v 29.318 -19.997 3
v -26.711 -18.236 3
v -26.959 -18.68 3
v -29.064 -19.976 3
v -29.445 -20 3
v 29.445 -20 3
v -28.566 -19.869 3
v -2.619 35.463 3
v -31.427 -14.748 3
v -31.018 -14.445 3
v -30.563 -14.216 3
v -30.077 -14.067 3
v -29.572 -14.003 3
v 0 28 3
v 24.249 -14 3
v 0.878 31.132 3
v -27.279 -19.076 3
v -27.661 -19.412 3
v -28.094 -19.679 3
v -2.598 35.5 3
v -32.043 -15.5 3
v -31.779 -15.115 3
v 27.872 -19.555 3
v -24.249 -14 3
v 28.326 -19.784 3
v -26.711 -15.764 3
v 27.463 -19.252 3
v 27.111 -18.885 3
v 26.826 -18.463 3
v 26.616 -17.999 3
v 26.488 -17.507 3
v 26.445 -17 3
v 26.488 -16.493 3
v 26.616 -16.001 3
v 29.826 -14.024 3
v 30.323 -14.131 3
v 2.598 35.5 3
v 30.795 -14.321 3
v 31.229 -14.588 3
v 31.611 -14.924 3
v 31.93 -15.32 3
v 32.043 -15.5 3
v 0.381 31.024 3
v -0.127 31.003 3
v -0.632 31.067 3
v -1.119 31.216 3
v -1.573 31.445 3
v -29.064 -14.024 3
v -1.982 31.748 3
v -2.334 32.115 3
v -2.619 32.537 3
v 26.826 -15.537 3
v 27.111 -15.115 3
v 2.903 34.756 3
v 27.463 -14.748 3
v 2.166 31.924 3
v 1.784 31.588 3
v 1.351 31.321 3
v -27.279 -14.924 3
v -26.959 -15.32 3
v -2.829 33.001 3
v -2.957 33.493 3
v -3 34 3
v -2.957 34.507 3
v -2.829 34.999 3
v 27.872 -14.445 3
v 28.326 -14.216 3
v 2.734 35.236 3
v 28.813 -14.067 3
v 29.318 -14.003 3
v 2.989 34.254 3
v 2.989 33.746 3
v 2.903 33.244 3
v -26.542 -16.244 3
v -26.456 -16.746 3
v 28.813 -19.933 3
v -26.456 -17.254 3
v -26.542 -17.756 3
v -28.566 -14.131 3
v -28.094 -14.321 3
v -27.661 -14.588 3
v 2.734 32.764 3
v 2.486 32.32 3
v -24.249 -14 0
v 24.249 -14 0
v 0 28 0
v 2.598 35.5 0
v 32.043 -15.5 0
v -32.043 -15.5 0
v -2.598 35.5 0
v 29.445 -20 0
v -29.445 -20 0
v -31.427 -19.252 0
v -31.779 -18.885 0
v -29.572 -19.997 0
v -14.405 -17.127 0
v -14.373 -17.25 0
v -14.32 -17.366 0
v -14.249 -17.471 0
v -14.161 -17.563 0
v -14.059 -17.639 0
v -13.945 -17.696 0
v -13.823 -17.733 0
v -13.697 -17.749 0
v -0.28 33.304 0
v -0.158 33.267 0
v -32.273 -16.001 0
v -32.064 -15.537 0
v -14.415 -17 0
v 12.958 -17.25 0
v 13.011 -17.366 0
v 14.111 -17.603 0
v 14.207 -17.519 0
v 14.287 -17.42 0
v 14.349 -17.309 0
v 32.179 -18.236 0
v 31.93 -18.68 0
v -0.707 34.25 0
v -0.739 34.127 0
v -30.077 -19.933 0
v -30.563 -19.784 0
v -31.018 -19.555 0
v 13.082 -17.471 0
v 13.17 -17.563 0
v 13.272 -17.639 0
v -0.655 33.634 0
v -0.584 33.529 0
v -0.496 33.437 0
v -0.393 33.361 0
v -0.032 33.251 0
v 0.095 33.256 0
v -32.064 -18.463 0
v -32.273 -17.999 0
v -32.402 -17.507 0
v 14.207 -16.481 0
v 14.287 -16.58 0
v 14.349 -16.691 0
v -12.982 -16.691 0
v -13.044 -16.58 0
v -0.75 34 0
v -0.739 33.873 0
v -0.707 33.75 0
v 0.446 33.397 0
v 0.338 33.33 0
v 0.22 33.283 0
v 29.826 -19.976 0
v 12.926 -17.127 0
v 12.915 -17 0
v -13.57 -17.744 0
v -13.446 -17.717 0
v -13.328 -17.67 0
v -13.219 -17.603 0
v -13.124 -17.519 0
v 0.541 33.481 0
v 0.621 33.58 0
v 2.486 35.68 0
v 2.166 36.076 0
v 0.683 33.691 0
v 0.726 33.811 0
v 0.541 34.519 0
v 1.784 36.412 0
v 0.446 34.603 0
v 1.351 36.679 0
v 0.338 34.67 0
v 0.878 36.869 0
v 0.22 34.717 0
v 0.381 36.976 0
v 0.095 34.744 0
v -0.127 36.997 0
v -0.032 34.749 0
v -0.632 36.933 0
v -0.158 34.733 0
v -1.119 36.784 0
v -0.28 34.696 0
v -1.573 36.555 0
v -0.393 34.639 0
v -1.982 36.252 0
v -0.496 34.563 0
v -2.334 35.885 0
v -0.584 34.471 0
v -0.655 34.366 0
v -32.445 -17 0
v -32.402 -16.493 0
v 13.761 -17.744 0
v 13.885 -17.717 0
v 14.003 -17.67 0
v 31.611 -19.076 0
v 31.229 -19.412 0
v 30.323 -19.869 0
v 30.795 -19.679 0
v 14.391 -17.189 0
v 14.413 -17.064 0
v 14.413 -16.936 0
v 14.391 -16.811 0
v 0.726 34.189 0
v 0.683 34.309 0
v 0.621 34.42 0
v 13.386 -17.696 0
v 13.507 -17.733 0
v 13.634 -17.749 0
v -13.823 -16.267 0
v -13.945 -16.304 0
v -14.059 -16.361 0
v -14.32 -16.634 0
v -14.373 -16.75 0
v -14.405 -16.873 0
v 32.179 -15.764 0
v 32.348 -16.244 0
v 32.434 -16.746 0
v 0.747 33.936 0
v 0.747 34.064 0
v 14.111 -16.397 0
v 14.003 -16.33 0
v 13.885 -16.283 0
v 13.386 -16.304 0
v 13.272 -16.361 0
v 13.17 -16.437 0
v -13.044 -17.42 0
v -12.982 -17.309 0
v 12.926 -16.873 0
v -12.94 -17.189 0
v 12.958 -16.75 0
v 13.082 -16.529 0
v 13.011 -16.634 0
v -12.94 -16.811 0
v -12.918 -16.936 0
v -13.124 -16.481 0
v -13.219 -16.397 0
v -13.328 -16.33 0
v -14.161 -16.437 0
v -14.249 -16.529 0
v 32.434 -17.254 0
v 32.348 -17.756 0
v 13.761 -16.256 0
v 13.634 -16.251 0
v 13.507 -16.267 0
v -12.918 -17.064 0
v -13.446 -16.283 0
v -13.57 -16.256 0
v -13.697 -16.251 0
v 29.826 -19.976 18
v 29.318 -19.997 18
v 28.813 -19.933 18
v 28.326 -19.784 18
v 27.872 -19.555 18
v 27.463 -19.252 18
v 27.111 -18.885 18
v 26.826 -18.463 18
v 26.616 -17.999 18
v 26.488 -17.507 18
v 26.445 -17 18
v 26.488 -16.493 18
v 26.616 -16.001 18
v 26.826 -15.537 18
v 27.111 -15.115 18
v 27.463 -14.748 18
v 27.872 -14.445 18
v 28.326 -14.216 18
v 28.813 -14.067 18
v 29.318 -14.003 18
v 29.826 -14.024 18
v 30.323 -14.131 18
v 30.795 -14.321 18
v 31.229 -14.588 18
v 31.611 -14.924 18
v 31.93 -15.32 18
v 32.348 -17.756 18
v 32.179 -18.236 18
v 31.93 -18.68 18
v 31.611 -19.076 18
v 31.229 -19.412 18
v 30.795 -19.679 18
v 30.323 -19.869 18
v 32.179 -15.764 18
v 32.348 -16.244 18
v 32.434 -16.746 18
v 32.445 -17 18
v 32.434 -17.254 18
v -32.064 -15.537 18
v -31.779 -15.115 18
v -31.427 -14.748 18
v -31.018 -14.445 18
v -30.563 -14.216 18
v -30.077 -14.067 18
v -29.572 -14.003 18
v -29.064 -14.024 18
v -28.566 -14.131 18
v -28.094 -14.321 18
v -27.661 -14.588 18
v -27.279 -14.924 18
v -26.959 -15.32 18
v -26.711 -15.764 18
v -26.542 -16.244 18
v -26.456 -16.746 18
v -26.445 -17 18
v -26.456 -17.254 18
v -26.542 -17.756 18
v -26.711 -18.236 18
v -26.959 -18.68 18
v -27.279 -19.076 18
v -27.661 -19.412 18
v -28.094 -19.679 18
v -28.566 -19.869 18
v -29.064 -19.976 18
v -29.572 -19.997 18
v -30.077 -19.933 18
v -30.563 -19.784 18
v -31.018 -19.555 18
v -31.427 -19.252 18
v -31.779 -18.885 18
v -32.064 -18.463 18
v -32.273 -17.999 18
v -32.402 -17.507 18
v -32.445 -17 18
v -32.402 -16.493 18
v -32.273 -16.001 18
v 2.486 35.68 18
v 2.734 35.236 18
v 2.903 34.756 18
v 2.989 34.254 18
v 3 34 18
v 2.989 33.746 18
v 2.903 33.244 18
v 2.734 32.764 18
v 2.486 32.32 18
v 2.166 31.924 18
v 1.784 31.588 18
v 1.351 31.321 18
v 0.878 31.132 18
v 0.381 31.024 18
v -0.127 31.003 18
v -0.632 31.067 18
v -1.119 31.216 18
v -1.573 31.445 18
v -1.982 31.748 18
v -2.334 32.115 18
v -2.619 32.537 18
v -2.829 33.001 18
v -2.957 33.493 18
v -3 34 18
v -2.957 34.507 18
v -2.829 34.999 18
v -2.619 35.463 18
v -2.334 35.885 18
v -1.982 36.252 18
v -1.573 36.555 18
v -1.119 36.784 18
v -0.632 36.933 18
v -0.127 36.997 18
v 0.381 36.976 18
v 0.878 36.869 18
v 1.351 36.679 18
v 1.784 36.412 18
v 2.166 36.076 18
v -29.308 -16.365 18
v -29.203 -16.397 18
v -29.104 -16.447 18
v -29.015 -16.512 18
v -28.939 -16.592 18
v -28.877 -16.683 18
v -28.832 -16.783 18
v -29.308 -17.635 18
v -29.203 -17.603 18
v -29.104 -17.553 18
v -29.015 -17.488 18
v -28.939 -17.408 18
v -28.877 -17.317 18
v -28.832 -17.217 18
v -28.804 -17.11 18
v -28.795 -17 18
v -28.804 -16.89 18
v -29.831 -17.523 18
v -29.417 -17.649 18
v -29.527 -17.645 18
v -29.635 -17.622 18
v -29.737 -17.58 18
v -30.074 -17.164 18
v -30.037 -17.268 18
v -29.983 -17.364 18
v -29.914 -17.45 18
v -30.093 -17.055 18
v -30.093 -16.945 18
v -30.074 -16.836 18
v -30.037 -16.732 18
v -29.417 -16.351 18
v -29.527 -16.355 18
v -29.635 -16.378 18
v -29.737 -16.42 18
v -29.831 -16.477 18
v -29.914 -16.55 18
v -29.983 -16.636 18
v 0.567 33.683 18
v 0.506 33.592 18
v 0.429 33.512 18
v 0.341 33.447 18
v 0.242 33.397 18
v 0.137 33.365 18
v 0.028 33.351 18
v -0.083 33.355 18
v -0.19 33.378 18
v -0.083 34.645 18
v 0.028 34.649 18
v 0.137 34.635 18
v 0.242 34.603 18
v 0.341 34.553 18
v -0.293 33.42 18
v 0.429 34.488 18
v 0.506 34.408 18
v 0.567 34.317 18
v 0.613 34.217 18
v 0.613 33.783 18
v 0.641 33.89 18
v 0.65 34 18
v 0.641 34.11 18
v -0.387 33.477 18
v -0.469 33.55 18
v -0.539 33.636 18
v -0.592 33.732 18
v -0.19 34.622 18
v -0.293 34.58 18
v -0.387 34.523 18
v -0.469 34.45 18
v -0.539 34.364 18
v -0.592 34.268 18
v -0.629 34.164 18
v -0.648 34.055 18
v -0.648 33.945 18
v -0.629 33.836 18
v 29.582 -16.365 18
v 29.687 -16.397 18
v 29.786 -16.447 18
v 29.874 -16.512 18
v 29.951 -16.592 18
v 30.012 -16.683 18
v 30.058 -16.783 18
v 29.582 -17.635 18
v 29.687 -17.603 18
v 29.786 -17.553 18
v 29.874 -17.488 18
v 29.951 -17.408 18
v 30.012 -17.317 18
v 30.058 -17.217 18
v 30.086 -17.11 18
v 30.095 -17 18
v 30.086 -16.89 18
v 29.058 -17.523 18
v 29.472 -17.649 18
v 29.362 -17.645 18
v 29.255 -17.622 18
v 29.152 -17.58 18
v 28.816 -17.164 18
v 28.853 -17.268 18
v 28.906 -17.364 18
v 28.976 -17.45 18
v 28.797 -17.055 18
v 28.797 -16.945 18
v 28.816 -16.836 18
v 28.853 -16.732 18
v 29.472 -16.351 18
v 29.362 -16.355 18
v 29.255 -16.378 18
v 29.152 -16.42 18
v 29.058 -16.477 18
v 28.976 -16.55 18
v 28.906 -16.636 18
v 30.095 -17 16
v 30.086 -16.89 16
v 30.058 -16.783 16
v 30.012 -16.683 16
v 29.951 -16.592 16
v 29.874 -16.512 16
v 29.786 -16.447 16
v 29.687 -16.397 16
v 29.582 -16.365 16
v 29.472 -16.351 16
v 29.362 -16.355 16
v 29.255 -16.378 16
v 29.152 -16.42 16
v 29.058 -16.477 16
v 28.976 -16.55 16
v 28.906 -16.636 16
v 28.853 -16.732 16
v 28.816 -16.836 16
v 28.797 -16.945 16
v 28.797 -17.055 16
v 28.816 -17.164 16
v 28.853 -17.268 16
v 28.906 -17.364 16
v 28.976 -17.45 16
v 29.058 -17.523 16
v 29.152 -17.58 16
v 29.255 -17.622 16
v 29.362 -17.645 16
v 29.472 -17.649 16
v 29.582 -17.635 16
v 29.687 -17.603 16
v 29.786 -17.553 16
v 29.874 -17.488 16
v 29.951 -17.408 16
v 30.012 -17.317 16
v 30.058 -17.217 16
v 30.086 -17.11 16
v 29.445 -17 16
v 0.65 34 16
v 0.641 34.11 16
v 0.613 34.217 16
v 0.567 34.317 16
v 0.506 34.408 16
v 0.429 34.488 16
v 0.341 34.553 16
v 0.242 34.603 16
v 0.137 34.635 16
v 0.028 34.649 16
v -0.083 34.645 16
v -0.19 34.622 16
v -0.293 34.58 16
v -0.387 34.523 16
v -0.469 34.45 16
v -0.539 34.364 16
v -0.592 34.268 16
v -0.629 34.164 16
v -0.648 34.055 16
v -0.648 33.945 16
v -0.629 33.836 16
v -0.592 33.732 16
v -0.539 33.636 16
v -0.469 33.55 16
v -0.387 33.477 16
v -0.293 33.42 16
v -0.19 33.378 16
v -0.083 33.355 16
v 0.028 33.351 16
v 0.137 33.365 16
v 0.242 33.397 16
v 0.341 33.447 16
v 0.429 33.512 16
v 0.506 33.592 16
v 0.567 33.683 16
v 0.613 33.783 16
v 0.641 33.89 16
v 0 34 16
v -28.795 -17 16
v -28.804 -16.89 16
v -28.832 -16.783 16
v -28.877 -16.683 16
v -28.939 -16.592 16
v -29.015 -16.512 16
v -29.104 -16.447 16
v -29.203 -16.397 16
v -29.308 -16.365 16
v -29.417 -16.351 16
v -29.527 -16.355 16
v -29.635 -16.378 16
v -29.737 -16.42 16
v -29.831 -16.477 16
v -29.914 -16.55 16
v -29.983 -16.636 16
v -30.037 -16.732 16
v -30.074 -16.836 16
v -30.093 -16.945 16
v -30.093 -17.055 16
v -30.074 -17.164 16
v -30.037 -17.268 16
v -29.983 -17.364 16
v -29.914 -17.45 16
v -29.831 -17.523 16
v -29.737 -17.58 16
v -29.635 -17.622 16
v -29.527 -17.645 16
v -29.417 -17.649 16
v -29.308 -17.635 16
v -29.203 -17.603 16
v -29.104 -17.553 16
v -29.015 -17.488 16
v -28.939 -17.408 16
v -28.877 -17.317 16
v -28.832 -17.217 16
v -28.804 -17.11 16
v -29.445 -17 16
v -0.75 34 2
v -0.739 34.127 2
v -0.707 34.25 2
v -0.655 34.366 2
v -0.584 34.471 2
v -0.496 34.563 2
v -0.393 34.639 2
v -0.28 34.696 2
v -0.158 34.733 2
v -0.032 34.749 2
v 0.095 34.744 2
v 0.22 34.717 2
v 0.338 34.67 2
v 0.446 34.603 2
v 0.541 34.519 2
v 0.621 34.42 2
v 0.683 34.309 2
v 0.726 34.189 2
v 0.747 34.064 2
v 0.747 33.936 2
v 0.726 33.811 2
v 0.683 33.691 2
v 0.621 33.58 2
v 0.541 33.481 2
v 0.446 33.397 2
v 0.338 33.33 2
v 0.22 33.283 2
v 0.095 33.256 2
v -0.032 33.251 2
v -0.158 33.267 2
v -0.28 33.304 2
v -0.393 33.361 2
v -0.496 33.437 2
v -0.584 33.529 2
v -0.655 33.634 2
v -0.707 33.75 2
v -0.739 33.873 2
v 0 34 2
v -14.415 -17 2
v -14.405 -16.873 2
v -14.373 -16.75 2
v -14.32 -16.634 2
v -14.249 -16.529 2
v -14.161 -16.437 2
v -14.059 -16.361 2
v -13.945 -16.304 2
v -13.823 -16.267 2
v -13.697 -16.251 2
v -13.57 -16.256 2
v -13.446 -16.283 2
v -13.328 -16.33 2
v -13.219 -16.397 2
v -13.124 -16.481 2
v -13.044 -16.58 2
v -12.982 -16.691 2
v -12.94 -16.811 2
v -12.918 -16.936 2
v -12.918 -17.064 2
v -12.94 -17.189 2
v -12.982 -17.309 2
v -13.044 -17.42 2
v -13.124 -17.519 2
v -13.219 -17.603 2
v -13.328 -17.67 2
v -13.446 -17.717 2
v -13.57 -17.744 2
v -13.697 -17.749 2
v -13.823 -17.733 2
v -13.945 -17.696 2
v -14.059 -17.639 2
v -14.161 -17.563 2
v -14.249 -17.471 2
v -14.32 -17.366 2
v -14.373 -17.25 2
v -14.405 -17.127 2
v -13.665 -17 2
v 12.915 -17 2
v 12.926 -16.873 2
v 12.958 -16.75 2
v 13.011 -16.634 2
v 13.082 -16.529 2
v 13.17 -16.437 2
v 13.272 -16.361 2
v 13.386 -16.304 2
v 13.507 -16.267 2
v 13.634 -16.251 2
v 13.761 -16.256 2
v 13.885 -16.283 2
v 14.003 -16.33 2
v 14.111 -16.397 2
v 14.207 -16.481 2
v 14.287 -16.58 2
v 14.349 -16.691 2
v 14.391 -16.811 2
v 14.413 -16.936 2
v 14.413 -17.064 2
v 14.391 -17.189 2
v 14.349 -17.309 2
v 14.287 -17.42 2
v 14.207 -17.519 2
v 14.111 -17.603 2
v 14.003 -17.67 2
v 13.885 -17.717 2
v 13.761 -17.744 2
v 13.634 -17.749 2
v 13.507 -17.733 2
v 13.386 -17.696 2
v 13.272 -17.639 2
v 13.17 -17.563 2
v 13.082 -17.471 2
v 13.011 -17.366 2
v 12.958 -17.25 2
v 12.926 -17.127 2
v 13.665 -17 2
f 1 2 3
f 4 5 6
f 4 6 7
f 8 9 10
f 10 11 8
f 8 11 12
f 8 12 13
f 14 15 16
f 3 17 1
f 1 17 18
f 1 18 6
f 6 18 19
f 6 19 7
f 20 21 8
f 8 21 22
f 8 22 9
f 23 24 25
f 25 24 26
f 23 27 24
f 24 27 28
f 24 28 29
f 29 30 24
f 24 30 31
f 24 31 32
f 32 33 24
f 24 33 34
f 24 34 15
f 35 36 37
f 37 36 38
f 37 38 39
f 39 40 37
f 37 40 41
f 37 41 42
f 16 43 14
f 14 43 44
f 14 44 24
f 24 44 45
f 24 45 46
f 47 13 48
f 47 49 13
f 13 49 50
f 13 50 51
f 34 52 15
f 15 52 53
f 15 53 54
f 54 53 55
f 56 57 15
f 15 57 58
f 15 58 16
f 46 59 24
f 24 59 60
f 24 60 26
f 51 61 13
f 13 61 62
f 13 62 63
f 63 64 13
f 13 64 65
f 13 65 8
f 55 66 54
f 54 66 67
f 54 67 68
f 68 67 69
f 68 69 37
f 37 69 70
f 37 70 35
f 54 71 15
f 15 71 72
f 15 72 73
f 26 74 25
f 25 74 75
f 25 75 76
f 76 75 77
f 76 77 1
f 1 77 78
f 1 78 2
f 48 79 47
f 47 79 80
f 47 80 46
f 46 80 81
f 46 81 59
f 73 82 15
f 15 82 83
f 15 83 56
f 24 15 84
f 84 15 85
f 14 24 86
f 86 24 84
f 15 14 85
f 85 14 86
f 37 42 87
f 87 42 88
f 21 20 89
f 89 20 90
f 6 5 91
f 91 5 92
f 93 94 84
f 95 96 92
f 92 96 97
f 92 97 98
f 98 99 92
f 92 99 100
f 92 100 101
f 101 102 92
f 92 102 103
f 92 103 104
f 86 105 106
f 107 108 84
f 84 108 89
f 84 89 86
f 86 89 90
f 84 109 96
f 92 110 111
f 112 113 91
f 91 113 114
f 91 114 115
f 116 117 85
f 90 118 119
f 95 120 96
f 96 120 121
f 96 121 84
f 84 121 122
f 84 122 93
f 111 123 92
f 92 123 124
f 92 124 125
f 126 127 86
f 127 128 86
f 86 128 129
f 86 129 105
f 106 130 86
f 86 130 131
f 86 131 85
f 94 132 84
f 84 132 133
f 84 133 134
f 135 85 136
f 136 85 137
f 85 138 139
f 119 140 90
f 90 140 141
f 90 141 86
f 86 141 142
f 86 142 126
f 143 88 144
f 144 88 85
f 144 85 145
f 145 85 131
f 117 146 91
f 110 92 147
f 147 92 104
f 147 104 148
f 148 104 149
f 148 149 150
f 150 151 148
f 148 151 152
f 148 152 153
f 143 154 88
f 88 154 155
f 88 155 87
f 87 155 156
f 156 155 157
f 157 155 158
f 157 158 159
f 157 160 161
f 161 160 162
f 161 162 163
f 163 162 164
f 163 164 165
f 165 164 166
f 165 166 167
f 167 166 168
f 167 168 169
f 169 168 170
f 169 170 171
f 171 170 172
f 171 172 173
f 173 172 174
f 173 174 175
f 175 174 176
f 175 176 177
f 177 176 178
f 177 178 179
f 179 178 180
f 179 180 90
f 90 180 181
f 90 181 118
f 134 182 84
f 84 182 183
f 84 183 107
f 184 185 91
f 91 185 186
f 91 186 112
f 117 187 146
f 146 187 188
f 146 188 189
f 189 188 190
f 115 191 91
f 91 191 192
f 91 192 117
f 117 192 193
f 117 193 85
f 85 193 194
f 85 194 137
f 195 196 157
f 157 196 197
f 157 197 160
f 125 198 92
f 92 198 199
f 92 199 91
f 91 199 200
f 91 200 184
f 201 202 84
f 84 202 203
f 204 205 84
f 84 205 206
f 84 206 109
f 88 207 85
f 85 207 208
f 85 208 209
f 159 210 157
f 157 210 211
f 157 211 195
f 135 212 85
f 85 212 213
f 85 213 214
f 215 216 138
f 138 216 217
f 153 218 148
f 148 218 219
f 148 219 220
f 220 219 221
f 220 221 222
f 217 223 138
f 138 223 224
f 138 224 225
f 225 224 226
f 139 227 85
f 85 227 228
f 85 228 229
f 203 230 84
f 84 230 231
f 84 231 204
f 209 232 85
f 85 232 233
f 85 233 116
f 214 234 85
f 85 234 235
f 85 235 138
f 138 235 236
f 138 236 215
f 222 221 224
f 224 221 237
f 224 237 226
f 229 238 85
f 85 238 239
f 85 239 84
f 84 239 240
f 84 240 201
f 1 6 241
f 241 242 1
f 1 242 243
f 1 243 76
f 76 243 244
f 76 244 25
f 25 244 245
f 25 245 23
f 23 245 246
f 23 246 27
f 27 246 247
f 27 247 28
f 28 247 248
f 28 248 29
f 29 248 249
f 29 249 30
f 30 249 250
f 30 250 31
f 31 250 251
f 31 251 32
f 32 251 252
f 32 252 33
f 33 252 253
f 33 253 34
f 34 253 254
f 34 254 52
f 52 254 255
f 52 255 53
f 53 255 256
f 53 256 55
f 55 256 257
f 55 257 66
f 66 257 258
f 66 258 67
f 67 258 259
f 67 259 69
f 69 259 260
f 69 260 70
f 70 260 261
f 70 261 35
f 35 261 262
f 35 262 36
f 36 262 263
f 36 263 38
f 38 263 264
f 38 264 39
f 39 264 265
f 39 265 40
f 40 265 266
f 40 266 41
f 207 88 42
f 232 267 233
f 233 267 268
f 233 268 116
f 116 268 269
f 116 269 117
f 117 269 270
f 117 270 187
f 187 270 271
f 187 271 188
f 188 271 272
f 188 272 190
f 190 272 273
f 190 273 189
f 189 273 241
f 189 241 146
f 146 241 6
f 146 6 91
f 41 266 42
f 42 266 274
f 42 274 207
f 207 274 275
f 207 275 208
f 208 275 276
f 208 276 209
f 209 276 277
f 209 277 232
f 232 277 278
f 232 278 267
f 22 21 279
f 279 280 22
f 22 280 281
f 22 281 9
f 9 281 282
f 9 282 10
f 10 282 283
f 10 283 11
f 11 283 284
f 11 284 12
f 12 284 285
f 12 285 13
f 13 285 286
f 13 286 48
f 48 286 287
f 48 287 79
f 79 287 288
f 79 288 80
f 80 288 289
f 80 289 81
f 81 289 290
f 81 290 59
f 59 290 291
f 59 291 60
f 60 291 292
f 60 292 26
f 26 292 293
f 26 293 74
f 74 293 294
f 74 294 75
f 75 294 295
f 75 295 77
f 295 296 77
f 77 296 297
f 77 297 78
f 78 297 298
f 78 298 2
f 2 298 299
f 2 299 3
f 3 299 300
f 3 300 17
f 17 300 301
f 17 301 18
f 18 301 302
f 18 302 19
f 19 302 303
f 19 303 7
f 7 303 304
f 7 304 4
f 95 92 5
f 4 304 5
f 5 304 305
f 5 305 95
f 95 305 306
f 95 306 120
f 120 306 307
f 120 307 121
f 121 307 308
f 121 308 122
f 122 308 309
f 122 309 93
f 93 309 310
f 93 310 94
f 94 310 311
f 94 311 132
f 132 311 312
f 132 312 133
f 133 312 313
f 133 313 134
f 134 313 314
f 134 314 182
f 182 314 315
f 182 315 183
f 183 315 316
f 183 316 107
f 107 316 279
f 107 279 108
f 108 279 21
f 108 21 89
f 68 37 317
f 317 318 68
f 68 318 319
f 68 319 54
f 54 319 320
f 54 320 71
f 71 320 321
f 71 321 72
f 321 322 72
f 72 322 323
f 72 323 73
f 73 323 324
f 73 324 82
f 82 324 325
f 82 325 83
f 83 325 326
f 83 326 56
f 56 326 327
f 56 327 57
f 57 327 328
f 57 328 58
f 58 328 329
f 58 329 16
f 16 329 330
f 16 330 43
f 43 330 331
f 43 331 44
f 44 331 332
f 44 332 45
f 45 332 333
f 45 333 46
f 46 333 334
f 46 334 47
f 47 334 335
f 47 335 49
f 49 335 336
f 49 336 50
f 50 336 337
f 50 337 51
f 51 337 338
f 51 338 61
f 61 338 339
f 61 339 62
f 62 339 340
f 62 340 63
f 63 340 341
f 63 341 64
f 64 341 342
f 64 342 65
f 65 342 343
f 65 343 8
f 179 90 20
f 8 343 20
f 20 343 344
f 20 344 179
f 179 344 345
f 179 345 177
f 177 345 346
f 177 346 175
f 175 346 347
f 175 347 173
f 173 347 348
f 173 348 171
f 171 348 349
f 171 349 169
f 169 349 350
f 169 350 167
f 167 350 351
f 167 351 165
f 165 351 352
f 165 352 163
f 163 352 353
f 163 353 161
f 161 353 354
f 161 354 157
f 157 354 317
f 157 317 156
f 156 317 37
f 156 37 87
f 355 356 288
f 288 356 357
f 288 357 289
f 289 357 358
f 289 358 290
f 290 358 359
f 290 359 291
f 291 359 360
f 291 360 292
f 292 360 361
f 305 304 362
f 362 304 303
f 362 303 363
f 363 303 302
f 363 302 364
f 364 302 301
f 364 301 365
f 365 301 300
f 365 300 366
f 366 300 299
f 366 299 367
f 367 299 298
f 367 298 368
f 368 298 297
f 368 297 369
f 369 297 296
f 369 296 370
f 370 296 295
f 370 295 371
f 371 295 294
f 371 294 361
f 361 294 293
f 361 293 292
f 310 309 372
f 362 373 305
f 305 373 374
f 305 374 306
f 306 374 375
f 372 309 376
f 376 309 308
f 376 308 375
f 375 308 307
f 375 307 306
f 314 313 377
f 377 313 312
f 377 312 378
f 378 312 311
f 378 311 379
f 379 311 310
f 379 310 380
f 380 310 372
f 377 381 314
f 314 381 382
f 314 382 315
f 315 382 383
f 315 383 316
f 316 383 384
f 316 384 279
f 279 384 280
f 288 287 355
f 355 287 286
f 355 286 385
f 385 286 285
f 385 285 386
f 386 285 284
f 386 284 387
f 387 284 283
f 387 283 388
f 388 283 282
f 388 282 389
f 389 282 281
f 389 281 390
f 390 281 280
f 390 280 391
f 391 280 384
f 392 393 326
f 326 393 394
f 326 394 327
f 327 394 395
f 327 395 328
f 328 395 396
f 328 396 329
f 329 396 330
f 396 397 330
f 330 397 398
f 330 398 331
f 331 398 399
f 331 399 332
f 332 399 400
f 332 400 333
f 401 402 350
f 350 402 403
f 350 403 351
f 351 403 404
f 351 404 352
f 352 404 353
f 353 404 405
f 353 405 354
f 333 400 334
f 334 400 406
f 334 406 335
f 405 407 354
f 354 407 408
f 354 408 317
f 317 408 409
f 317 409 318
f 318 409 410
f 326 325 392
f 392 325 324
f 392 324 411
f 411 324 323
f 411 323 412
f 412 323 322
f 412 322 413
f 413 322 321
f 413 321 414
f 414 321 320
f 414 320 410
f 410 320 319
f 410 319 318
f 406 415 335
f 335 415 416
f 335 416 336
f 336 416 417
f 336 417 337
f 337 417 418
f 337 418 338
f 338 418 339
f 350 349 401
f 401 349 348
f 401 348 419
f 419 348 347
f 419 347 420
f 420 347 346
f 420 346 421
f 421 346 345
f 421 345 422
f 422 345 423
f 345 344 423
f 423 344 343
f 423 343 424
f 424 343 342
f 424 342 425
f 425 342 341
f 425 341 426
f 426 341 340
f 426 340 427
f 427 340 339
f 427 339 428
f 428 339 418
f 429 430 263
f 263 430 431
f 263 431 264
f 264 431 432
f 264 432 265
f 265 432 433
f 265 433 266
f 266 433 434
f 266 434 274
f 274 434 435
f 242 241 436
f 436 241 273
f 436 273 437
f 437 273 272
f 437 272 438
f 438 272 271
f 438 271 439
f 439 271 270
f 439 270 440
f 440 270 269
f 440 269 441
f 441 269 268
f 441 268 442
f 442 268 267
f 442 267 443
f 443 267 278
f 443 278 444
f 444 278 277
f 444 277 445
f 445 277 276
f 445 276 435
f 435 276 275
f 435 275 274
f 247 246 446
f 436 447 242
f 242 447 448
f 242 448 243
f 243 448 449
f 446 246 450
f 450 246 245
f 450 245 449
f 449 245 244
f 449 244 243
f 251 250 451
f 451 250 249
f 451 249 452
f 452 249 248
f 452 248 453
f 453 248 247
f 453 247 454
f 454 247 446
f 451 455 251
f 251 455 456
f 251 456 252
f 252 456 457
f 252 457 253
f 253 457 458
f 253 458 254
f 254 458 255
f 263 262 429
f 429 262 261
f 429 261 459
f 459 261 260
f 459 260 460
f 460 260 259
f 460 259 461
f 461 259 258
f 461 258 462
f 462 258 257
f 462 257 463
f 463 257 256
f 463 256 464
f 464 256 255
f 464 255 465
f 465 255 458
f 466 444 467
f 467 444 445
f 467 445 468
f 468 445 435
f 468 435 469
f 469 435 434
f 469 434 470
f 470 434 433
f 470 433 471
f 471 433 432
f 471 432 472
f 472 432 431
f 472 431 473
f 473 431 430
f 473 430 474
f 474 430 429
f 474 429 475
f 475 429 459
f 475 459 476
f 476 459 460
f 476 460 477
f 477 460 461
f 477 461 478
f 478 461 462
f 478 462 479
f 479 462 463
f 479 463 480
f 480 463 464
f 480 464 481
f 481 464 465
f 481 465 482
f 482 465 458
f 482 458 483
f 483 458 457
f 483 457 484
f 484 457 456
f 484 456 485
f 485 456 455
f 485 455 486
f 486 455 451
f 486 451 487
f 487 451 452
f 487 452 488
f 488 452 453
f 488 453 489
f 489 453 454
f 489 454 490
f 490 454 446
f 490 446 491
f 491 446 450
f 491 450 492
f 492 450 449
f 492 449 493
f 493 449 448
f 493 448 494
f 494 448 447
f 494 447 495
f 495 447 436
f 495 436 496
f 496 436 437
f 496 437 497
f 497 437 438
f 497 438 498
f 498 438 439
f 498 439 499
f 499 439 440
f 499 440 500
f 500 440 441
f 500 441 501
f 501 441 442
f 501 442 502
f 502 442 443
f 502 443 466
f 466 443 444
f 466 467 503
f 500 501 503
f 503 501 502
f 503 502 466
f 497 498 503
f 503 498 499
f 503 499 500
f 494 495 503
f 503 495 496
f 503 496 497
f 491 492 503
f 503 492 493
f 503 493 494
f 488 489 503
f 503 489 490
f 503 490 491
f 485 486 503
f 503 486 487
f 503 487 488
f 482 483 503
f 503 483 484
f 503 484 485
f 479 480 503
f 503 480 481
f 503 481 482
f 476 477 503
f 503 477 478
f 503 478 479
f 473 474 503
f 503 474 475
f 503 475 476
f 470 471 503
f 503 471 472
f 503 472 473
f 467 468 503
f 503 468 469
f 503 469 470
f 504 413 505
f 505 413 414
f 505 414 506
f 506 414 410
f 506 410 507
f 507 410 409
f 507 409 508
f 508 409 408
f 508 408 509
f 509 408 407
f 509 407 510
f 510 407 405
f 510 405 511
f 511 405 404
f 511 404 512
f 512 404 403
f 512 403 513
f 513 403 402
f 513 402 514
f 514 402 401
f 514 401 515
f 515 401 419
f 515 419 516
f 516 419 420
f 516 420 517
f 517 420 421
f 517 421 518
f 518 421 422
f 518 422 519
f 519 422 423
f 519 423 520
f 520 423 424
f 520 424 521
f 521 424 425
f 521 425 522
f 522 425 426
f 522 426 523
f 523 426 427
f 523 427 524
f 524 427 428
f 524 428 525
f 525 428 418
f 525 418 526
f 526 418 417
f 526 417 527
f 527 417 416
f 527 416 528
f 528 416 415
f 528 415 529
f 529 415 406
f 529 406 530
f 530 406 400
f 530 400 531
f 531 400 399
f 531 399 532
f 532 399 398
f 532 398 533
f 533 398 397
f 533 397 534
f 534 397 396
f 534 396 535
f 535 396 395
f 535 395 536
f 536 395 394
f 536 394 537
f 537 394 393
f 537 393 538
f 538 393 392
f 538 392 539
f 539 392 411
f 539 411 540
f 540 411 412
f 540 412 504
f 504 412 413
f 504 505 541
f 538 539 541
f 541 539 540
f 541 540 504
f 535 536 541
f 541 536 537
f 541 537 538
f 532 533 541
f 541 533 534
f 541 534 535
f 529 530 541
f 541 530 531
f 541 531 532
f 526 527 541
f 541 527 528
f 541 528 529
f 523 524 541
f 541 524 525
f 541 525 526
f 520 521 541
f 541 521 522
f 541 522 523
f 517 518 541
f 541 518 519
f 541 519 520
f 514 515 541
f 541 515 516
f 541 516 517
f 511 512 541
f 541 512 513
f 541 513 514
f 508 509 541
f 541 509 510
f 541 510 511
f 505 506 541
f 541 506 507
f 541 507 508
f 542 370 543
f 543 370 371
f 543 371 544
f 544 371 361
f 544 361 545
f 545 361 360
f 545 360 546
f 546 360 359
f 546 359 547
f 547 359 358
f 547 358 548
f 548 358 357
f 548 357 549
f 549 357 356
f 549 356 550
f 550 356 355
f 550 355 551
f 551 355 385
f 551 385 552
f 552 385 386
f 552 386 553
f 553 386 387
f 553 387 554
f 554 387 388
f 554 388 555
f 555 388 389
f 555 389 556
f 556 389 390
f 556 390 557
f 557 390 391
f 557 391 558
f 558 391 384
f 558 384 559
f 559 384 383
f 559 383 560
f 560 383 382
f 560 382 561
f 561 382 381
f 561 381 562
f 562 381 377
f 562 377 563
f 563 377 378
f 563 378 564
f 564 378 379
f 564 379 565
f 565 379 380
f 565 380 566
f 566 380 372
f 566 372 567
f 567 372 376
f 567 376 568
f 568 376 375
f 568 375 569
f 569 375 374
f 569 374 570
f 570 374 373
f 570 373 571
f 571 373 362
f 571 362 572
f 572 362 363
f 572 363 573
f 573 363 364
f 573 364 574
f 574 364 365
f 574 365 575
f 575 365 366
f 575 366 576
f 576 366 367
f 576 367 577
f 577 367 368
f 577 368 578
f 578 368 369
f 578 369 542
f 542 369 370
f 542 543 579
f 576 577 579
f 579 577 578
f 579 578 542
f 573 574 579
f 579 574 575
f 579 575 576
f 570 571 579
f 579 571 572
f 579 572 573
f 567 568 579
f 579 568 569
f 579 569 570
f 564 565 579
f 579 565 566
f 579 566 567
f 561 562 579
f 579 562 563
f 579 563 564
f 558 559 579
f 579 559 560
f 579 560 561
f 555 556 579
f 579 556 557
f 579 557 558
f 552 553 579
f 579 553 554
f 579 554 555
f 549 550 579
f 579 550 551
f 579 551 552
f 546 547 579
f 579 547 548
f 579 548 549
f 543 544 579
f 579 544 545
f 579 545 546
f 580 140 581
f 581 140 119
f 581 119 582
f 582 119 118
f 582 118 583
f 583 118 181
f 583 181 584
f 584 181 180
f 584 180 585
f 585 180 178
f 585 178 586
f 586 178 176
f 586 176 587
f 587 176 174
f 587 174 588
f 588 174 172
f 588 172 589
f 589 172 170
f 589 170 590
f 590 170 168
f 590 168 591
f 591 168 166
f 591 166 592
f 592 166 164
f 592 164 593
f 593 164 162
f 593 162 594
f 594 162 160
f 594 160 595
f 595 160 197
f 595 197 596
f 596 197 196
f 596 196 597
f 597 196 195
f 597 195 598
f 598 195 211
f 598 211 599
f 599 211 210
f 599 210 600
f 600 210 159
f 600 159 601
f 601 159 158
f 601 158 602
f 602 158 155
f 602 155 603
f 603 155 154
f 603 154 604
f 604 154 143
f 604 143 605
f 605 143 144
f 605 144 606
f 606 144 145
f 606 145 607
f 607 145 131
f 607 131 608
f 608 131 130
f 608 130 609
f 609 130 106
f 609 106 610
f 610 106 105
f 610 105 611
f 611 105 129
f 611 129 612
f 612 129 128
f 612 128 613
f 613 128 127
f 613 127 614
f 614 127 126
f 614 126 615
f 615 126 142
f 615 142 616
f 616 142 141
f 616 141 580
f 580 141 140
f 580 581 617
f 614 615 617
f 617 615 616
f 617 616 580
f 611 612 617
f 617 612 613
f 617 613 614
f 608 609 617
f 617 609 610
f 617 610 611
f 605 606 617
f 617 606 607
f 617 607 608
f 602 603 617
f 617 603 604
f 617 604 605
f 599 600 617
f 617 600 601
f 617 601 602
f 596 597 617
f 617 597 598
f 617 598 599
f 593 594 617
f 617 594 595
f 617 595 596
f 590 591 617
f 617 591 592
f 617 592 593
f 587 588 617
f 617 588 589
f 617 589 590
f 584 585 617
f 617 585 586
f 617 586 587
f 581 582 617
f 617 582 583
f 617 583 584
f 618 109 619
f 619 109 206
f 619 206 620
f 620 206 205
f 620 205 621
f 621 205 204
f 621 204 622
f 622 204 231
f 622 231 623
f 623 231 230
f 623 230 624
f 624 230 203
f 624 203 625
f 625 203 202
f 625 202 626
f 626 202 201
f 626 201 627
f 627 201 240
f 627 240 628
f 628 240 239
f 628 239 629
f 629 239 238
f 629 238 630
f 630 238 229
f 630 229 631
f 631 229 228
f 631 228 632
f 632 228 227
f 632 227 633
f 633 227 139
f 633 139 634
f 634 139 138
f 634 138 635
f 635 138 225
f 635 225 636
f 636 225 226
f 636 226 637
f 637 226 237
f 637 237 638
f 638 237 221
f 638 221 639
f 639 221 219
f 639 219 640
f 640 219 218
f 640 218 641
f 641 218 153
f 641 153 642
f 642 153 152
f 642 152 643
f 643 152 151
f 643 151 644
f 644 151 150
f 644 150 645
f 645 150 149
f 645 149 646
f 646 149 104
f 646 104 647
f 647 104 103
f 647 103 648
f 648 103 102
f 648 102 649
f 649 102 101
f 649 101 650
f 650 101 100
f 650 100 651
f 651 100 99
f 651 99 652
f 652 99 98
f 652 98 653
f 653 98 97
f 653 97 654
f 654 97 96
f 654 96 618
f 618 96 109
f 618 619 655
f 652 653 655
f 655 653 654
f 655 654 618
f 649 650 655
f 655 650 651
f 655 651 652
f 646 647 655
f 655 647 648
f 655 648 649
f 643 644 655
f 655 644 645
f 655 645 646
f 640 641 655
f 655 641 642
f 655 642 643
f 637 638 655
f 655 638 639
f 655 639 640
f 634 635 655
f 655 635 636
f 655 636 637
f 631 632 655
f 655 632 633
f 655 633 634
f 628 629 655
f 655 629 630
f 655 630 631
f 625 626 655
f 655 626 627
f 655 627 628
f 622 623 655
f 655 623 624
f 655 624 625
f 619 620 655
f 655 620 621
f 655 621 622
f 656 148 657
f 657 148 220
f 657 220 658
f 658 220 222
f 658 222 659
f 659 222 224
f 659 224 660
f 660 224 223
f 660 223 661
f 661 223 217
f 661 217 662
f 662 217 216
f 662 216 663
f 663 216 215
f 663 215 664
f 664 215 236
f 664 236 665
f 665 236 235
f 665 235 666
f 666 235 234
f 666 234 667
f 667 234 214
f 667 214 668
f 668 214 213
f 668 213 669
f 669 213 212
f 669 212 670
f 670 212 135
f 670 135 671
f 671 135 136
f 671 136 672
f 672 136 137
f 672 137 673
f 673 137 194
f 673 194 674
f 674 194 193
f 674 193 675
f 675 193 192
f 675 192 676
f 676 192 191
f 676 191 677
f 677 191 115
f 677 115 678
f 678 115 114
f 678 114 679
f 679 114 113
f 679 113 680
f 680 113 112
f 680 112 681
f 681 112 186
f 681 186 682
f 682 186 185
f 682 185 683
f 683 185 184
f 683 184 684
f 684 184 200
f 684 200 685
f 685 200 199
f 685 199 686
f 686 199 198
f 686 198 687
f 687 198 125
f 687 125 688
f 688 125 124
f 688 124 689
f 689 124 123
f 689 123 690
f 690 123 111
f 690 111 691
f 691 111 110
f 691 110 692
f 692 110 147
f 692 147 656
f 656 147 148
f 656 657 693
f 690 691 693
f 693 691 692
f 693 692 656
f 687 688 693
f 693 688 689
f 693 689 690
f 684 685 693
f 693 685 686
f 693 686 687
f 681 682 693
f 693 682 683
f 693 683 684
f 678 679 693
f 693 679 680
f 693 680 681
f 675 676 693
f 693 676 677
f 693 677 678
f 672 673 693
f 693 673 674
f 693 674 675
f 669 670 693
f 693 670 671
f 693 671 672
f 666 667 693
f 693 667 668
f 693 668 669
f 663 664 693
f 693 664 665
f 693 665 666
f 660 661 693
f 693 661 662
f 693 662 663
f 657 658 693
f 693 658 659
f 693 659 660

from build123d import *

# Parameters (mm, degrees)
EXTRUDE_1_DEPTH     = 3
EXTRUDE_START       = 3
SKETCH_1_6_R        = 3
EXTRUDE_2_DEPTH     = 15
CUT_EXTRUDE_START   = 18
SKETCH_1_7_R        = 0.65
CUT_EXTRUDE_2_DEPTH = 2
SKETCH_2_R          = 0.75
CUT_EXTRUDE_3_DEPTH = 2


with BuildPart() as part:
    # 草图1 → 凸台-拉伸1 (new body)
    with BuildSketch(Plane.XY):
        with BuildLine():
            Line((-29.444863729, -20), (29.444863729, -20))
            ThreePointArc((29.444863729, -20), (32.04293994, -18.5), (32.04293994, -15.5))
            Line((32.04293994, -15.5), (2.598076211, 35.5))
            ThreePointArc((2.598076211, 35.5), (0, 37), (-2.598076211, 35.5))
            Line((-2.598076211, 35.5), (-32.04293994, -15.5))
            ThreePointArc((-32.04293994, -15.5), (-32.04293994, -18.5), (-29.444863729, -20))
        make_face()
        Polygon((24.248711306, -14), (-24.248711306, -14), (0, 28), align=None, mode=Mode.SUBTRACT)
    extrude(amount=EXTRUDE_1_DEPTH)

    # 草图1<6> → 凸台-拉伸2 (add)
    with BuildSketch(Plane.XY.offset(EXTRUDE_START)):
        with Locations(Location((-29.444863729, -17, 0), (0, 0, 150))):
            Circle(SKETCH_1_6_R)
        with Locations(Location((29.444863729, -17, 0), (0, 0, 270))):
            Circle(SKETCH_1_6_R)
        with Locations(Location((0, 34, 0), (0, 0, 150))):
            Circle(SKETCH_1_6_R)
    extrude(amount=EXTRUDE_2_DEPTH)

    # 草图1<7> → 切除-拉伸2 (cut)
    with BuildSketch(Plane.XY.offset(CUT_EXTRUDE_START)):
        with Locations((0, 34)):
            Circle(SKETCH_1_7_R)
        with Locations((-29.444863729, -17)):
            Circle(SKETCH_1_7_R)
        with Locations((29.444863729, -17)):
            Circle(SKETCH_1_7_R)
    extrude(amount=-CUT_EXTRUDE_2_DEPTH, mode=Mode.SUBTRACT)

    # 草图2 → 切除-拉伸3 (cut)
    with BuildSketch(Plane(origin=(0, 0, 0), x_dir=(-1, 0, 0), z_dir=(0, 0, -1))):
        with Locations((-13.665408814, -17)):
            Circle(SKETCH_2_R)
        with Locations((13.665408814, -17)):
            Circle(SKETCH_2_R)
        with Locations((0, 34)):
            Circle(SKETCH_2_R)
    extrude(amount=-CUT_EXTRUDE_3_DEPTH, mode=Mode.SUBTRACT)


solid = part.part
